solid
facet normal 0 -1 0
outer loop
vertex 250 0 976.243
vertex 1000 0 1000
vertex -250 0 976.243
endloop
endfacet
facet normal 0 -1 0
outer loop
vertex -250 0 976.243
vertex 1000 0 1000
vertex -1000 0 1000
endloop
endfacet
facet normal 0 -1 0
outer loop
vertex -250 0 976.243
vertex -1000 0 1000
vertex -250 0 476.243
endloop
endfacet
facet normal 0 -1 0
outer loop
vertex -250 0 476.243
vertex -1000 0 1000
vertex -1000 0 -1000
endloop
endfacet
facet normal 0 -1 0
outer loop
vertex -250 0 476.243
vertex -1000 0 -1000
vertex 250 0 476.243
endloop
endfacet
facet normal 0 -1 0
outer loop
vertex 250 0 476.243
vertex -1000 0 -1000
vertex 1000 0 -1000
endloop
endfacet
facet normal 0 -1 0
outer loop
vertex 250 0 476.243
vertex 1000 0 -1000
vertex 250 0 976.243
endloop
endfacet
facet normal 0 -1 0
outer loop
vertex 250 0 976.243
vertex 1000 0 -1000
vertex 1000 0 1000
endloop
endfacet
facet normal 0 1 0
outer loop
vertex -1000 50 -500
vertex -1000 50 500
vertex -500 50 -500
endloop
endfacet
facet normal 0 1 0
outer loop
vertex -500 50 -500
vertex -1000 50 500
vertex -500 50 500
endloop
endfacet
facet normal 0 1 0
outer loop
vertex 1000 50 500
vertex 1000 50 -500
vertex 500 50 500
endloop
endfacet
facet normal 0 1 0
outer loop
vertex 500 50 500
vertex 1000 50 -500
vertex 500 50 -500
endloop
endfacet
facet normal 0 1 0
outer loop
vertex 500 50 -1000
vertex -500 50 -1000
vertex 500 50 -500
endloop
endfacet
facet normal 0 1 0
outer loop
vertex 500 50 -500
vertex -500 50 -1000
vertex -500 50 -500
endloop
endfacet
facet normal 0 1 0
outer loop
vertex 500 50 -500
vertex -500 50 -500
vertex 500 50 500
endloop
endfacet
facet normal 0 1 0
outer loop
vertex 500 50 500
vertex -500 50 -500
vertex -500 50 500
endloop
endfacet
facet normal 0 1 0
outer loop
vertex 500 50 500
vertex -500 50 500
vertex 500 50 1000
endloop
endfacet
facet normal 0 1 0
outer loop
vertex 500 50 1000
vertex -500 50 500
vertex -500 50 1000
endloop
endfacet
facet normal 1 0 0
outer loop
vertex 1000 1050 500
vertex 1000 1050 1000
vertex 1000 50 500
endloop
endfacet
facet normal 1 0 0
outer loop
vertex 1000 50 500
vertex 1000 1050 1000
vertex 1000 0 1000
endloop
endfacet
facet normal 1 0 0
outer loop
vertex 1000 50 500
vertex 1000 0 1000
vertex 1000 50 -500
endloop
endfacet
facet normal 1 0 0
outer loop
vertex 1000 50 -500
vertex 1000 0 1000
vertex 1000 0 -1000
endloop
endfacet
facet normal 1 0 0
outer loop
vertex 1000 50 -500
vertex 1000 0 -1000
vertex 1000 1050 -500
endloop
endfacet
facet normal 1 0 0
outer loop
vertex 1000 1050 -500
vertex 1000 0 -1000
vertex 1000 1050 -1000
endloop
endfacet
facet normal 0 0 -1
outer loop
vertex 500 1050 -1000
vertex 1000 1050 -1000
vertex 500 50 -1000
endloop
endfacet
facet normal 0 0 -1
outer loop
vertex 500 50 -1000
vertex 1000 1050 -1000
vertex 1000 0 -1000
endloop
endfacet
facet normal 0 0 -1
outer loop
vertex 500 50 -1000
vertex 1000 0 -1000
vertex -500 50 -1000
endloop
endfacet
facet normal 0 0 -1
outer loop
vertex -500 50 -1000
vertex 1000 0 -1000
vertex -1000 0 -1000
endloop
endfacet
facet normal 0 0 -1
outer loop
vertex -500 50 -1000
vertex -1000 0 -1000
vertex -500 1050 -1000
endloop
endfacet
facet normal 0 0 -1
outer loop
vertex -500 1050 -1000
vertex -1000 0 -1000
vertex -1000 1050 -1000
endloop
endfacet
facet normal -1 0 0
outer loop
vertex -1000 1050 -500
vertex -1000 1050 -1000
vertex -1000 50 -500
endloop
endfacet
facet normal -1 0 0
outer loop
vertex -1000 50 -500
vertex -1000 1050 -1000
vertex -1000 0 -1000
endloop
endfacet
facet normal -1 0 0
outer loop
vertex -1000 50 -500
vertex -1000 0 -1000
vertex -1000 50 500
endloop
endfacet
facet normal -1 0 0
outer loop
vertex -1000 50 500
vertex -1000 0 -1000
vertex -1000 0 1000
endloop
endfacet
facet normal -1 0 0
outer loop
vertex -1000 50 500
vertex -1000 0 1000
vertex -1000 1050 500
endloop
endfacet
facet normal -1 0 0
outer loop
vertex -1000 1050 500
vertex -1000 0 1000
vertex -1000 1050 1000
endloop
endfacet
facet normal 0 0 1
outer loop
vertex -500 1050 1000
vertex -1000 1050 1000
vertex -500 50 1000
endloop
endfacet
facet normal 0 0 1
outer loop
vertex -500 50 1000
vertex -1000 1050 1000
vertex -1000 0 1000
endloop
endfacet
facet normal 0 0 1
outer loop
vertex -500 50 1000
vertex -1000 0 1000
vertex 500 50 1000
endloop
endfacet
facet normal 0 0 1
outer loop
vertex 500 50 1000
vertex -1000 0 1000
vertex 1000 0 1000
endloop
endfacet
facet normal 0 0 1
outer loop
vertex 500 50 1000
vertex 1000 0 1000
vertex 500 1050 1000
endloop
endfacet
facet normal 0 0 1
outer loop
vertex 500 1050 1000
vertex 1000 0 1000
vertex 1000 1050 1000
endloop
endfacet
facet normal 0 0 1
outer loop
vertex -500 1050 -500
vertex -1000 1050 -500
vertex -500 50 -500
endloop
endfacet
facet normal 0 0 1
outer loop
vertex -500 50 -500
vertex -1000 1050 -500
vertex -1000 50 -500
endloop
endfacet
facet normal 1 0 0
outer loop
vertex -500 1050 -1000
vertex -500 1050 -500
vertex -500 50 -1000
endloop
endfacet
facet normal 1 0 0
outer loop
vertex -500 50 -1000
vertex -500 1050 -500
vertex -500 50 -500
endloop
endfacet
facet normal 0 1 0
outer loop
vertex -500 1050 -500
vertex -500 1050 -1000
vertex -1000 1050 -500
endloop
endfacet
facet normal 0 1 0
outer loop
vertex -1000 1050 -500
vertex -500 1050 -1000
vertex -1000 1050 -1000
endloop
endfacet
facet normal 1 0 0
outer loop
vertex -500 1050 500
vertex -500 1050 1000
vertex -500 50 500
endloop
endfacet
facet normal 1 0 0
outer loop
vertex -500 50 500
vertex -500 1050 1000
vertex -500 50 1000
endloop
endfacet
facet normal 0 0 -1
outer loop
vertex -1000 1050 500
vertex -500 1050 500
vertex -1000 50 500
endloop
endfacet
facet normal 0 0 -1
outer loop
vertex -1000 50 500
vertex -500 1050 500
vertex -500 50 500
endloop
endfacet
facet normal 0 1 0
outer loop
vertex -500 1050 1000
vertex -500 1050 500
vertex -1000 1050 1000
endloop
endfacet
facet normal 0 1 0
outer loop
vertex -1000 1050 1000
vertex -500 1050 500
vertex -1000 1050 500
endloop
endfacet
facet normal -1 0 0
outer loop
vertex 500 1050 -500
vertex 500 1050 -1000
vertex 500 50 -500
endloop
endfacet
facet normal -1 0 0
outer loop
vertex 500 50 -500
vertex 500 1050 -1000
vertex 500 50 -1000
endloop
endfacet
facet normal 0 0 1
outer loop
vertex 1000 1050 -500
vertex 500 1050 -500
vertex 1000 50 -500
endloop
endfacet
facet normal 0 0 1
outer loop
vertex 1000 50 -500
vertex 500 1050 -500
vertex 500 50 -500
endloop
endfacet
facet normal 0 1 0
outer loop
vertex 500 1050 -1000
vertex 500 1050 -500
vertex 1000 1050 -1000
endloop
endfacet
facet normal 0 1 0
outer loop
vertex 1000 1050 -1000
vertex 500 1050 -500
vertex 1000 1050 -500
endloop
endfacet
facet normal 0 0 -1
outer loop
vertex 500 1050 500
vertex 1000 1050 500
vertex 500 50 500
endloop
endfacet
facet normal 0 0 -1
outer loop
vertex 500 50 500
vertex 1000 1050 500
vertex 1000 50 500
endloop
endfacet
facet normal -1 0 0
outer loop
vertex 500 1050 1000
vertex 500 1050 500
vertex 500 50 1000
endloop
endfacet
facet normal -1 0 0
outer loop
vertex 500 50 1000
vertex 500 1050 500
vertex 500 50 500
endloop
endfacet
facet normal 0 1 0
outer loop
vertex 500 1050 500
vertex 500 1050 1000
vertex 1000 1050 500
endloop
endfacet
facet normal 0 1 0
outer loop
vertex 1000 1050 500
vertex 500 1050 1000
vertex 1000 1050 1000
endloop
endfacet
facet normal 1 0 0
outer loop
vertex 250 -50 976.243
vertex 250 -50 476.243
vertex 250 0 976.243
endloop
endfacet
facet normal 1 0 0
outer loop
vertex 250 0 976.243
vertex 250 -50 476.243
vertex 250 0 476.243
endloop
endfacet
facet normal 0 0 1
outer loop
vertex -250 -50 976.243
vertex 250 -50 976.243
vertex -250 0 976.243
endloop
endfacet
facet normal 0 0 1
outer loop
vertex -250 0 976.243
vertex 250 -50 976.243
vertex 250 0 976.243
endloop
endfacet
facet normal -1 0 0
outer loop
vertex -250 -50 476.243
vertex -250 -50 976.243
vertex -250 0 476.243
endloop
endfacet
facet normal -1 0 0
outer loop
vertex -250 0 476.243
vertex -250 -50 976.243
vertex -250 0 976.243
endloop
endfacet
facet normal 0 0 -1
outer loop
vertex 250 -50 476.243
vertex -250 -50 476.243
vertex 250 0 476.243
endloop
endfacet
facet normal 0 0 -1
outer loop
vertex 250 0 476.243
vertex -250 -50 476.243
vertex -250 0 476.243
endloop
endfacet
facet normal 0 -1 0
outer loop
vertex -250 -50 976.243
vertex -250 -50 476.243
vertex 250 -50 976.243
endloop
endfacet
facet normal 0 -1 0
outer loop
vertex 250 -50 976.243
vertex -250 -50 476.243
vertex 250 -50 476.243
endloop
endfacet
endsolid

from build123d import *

# Parameters (mm, degrees)
SKETCH1_W                                  = 2000
SKETCH1_H                                  = 2000
BOSS_EXTRUDE1_DEPTH                        = 50
SKETCH2_W                                  = 500
SKETCH2_H                                  = 500
BOSS_EXTRUDE2_DEPTH                        = 1000
MIRROR2_AT_THE_SECOND_PLANE_COPY_1_SKETC_W = 500
MIRROR2_AT_THE_SECOND_PLANE_COPY_1_SKETC_H = 500
MIRROR2_AT_THE_SECOND_PLANE_COPY_1_DEPTH   = 1000
SKETCH4_W                                  = 500
SKETCH4_H                                  = 500
BOSS_EXTRUDE4_DEPTH                        = 50


with BuildPart() as part:
    # Sketch1 → Boss-Extrude1 (new body)
    with BuildSketch(Plane(origin=(0, 0, 0), x_dir=(1, 0, 0), z_dir=(0, 1, 0))):
        Rectangle(SKETCH1_W, SKETCH1_H)
    extrude(amount=BOSS_EXTRUDE1_DEPTH)

    # Sketch2 → Boss-Extrude2 (add)
    with BuildSketch(Plane(origin=(0, 50, 0), x_dir=(1, 0, 0), z_dir=(0, 1, 0))):
        with Locations((-750, 750)):
            Rectangle(SKETCH2_W, SKETCH2_H)
    boss_extrude2 = extrude(amount=BOSS_EXTRUDE2_DEPTH)

    # Mirror1: Boss-Extrude2 across plane
    add(boss_extrude2.mirror(Plane.XY))

    # Mirror2: Boss-Extrude2 across plane
    add(boss_extrude2.mirror(Plane.XY))

    # Mirror2 at the second plane: Boss-Extrude2 across plane
    add(boss_extrude2.mirror(Plane(origin=(0, 0, 0), x_dir=(0, 0, 1), z_dir=(1, 0, 0))))

    # Mirror2 at the second plane copy 1 sketc → Mirror2 at the second plane copy 1 (add)
    with BuildSketch(Plane(origin=(0, 50, 0), x_dir=(-1, 0, 0), z_dir=(0, 1, 0))):
        with Locations((-750, 750)):
            Rectangle(MIRROR2_AT_THE_SECOND_PLANE_COPY_1_SKETC_W, MIRROR2_AT_THE_SECOND_PLANE_COPY_1_SKETC_H)
    extrude(amount=MIRROR2_AT_THE_SECOND_PLANE_COPY_1_DEPTH)

    # Sketch4 → Boss-Extrude4 (add)
    with BuildSketch(Plane.XZ):
        with Locations((0, 726.243185446)):
            Rectangle(SKETCH4_W, SKETCH4_H)
    extrude(amount=BOSS_EXTRUDE4_DEPTH)


solid = part.part
